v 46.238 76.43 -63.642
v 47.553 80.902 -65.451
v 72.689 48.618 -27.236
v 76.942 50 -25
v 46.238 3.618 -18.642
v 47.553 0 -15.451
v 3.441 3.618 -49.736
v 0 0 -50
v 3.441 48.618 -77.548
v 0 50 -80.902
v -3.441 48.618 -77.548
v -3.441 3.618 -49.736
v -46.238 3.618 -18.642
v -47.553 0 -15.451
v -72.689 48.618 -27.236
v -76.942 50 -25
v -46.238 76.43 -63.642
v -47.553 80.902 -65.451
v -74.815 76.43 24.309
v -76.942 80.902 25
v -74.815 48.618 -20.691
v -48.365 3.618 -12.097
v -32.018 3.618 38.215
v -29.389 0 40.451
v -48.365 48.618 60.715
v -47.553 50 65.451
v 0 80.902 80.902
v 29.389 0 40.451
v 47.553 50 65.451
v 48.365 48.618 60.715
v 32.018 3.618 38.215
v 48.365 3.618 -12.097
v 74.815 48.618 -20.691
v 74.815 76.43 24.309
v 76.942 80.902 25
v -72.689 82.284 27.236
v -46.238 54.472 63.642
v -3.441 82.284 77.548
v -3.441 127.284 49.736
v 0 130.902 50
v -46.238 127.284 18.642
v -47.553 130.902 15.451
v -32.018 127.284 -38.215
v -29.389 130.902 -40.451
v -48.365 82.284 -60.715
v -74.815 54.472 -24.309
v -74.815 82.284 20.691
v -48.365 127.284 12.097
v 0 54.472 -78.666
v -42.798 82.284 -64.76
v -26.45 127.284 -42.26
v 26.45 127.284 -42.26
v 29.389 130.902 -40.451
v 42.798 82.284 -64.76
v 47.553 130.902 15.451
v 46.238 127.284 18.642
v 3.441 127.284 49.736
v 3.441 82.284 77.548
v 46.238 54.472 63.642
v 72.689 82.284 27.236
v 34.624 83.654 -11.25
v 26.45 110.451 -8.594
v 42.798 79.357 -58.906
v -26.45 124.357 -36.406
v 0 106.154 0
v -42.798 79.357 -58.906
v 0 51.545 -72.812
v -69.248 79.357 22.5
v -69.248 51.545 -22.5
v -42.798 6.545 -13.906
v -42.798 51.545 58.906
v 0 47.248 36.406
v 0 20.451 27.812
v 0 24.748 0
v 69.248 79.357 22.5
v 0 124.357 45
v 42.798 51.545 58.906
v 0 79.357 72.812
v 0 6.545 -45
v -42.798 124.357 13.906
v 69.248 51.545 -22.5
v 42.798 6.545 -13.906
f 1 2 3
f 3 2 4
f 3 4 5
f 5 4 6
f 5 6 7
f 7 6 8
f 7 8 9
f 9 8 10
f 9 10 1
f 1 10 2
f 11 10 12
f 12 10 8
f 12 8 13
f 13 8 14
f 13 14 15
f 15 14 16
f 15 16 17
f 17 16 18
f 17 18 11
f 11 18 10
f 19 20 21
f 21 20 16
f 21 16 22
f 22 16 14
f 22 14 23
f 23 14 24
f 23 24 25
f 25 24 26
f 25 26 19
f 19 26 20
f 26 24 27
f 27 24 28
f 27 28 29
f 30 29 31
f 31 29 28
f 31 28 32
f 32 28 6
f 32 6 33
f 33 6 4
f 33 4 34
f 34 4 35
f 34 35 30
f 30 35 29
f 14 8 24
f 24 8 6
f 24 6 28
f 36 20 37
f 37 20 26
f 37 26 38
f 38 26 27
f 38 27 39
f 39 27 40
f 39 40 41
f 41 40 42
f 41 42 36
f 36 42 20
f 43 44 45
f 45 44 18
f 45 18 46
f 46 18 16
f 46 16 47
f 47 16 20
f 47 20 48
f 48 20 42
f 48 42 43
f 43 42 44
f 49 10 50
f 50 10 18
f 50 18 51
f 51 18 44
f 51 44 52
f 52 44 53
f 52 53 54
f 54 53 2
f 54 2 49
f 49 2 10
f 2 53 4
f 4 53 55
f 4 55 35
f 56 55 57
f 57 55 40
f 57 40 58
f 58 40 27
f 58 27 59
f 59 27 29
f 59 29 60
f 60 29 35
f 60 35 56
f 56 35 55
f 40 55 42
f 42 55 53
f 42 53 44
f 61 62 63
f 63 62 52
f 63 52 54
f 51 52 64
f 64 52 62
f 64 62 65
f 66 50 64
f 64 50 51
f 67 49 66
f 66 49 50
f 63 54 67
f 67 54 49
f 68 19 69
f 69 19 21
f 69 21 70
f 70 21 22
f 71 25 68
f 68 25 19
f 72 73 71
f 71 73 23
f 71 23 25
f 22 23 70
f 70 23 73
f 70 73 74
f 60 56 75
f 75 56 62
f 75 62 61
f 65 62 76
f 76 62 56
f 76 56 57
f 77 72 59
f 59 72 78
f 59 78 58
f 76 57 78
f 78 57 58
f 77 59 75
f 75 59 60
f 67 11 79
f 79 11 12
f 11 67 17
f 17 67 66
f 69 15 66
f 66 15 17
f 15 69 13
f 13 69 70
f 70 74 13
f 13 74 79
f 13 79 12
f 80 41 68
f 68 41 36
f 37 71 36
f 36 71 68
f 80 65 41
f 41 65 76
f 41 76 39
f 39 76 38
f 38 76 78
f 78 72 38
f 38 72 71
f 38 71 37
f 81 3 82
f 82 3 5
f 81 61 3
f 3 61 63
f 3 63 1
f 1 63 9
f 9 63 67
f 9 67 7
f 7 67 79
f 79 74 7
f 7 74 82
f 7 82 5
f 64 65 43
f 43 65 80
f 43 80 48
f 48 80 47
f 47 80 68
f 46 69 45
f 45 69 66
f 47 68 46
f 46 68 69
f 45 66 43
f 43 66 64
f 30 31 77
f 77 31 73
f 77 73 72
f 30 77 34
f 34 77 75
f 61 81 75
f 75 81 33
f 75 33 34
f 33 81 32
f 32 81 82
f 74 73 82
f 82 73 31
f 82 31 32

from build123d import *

# Parameters (mm, degrees)
CREATION_EXTRUDE_DEPTH = 130.901699304
CREATION_EXTRUDE_TAPER = -26.56505118
SKETCH2_OUTSIDE_W      = 455.432
SKETCH2_OUTSIDE_H      = 443.246
CREATION_CUT_DEPTH     = 130.901699304
CREATION_CUT_TAPER     = 26.56505118
CUT_EXTRUDE_B_DEPTH    = 50.8
C_INV_DEPTH            = 50.8
CUT_EXTRUDE_D_DEPTH    = 50.8
D_INV_DEPTH            = 50.8
CUT_EXTRUDE_E_DEPTH    = 50.8
E_INV_DEPTH            = 50.8
CUT_EXTRUDE_F_DEPTH    = 50.8
F_INV_DEPTH            = 50.8


with BuildPart() as part:
    # Sketch1 → creation_extrude (new body)
    with BuildSketch(Plane(origin=(0, 0, 0), x_dir=(1, 0, 0), z_dir=(0, 1, 0))):
        Polygon((0, 49.999999949), (-47.552825766, 15.450849703), (-29.389262585, -40.450849677), (29.389262585, -40.450849677), (47.552825766, 15.450849703), align=None)
    extrude(amount=CREATION_EXTRUDE_DEPTH, taper=CREATION_EXTRUDE_TAPER)

    # Sketch2 outside → creation_cut (cut)
    with BuildSketch(Plane(origin=(0, 130.901699304, 0), x_dir=(1, 0, 0), z_dir=(0, 1, 0))):
        with Locations((0, 12.5)):
            Rectangle(SKETCH2_OUTSIDE_W, SKETCH2_OUTSIDE_H)
        Polygon((0, -49.999999949), (47.552825766, -15.450849703), (29.389262585, 40.450849677), (-29.389262585, 40.450849677), (-47.552825766, -15.450849703), align=None, mode=Mode.SUBTRACT)
    extrude(amount=-CREATION_CUT_DEPTH, taper=CREATION_CUT_TAPER, mode=Mode.SUBTRACT)

    # Sketch5 → Cut-Extrude B (cut)
    with BuildSketch(Plane(origin=(0, 42.360679738, -84.721359466), x_dir=(-1, 0, 0), z_dir=(-9.08060963965006e-15, 0.4472135955455734, -0.8944271909771081))):
        Polygon((-42.797543189, 44.635254864), (1e-09, 13.541019643), (42.79754319, 44.635254866), (26.450336325, 94.946784308), (-26.450336327, 94.946784307), align=None)
    extrude(amount=-CUT_EXTRUDE_B_DEPTH, mode=Mode.SUBTRACT)

    # Sketch8 → C_inv (cut)
    with BuildSketch(Plane(origin=(-30.776835339, -16.180339872, 9.999999989), x_dir=(0.2446443083020028, 0.12861712429362696, 0.9610446387935747), z_dir=(-0.8506508083303469, -0.4472135955455736, 0.27639320224297786))):
        Polygon((-31.935023341, 77.848060657), (-22.992425992, 25.708717357), (29.358450763, 18.101689683), (52.77047459, 65.539631327), (14.889024305, 102.464919293), align=None)
    extrude(amount=-C_INV_DEPTH, mode=Mode.SUBTRACT)

    # Sketch9 → Cut-Extrude D (cut)
    with BuildSketch(Plane(origin=(49.797965648, 42.360679738, 68.541019594), x_dir=(0.8506508083603209, -0.27639320226847824, -0.44721359547279954), z_dir=(0.5257311121057348, 0.44721359554557366, 0.7236067977315217))):
        Polygon((-4.184405192, 98.473361345), (-54.495934634, 82.126154482), (-54.495934634, 29.22548183), (-4.184405192, 12.878274966), (26.90983003, 55.675818156), align=None)
    extrude(amount=-CUT_EXTRUDE_D_DEPTH, mode=Mode.SUBTRACT)

    # Sketch10 → D_inv (cut)
    with BuildSketch(Plane(origin=(-19.021130306, -16.180339872, -26.180339859), x_dir=(-0.8506508083603233, 0.27639320226847536, 0.44721359547279665), z_dir=(-0.5257311121057309, -0.44721359554557344, -0.7236067977315247))):
        Polygon((31.995934659, 98.473361351), (-18.315594783, 82.126154488), (-18.315594783, 29.225481836), (31.995934659, 12.878274972), (63.090169881, 55.675818162), align=None)
    extrude(amount=-D_INV_DEPTH, mode=Mode.SUBTRACT)

    # Sketch11 → Cut-Extrude E (cut)
    with BuildSketch(Plane(origin=(-49.797965648, 42.360679738, 68.541019594), x_dir=(0.8506508083603298, 0.2763932022684677, 0.447213595472789), z_dir=(-0.5257311121057203, 0.44721359554557355, 0.7236067977315324))):
        Polygon((4.184405192, 98.473361345), (-26.90983003, 55.675818156), (4.184405192, 12.878274966), (54.495934634, 29.22548183), (54.495934634, 82.126154482), align=None)
    extrude(amount=-CUT_EXTRUDE_E_DEPTH, mode=Mode.SUBTRACT)

    # Sketch12 → E_inv (cut)
    with BuildSketch(Plane(origin=(19.021130306, -16.180339872, -26.180339859), x_dir=(-0.8506508083603274, -0.27639320226847064, -0.44721359547279194), z_dir=(0.5257311121057243, -0.44721359554557355, -0.7236067977315294))):
        Polygon((-31.99593466, 98.473361351), (-63.090169881, 55.67581816), (-31.995934658, 12.878274972), (18.315594784, 29.225481837), (18.315594782, 82.126154489), align=None)
    extrude(amount=-E_INV_DEPTH, mode=Mode.SUBTRACT)

    # Sketch13 → Cut-Extrude F (cut)
    with BuildSketch(Plane(origin=(-80.574800989, 42.360679738, -26.180339862), x_dir=(-0.24464430830199108, 0.12861712429362016, 0.9610446387935785), z_dir=(-0.8506508083303513, 0.4472135955455735, -0.2763932022429644))):
        Polygon((-12.522250637, 97.763517637), (-35.934274461, 50.325575991), (1.947175826, 13.400288027), (48.771223471, 38.017146666), (39.828626119, 90.156489966), align=None)
    extrude(amount=-CUT_EXTRUDE_F_DEPTH, mode=Mode.SUBTRACT)

    # Sketch14 → F_inv (cut)
    with BuildSketch(Plane(origin=(30.776835339, -16.180339872, 9.999999989), x_dir=(0.2446443083019939, -0.12861712429362177, -0.9610446387935776), z_dir=(0.8506508083303502, -0.4472135955455736, 0.2763932022429676))):
        Polygon((-29.358450768, 18.101689686), (22.992425988, 25.708717353), (31.935023344, 77.848060652), (-14.889024299, 102.464919294), (-52.770474589, 65.539631333), align=None)
    extrude(amount=-F_INV_DEPTH, mode=Mode.SUBTRACT)


with BuildPart() as body_2:
    # of the pieces the cut leaves, the one that is kept (f_inv_keep)
    add(part.part.solids().sort_by_distance((0, 0, -49.999999949))[0])


solid = body_2.part
